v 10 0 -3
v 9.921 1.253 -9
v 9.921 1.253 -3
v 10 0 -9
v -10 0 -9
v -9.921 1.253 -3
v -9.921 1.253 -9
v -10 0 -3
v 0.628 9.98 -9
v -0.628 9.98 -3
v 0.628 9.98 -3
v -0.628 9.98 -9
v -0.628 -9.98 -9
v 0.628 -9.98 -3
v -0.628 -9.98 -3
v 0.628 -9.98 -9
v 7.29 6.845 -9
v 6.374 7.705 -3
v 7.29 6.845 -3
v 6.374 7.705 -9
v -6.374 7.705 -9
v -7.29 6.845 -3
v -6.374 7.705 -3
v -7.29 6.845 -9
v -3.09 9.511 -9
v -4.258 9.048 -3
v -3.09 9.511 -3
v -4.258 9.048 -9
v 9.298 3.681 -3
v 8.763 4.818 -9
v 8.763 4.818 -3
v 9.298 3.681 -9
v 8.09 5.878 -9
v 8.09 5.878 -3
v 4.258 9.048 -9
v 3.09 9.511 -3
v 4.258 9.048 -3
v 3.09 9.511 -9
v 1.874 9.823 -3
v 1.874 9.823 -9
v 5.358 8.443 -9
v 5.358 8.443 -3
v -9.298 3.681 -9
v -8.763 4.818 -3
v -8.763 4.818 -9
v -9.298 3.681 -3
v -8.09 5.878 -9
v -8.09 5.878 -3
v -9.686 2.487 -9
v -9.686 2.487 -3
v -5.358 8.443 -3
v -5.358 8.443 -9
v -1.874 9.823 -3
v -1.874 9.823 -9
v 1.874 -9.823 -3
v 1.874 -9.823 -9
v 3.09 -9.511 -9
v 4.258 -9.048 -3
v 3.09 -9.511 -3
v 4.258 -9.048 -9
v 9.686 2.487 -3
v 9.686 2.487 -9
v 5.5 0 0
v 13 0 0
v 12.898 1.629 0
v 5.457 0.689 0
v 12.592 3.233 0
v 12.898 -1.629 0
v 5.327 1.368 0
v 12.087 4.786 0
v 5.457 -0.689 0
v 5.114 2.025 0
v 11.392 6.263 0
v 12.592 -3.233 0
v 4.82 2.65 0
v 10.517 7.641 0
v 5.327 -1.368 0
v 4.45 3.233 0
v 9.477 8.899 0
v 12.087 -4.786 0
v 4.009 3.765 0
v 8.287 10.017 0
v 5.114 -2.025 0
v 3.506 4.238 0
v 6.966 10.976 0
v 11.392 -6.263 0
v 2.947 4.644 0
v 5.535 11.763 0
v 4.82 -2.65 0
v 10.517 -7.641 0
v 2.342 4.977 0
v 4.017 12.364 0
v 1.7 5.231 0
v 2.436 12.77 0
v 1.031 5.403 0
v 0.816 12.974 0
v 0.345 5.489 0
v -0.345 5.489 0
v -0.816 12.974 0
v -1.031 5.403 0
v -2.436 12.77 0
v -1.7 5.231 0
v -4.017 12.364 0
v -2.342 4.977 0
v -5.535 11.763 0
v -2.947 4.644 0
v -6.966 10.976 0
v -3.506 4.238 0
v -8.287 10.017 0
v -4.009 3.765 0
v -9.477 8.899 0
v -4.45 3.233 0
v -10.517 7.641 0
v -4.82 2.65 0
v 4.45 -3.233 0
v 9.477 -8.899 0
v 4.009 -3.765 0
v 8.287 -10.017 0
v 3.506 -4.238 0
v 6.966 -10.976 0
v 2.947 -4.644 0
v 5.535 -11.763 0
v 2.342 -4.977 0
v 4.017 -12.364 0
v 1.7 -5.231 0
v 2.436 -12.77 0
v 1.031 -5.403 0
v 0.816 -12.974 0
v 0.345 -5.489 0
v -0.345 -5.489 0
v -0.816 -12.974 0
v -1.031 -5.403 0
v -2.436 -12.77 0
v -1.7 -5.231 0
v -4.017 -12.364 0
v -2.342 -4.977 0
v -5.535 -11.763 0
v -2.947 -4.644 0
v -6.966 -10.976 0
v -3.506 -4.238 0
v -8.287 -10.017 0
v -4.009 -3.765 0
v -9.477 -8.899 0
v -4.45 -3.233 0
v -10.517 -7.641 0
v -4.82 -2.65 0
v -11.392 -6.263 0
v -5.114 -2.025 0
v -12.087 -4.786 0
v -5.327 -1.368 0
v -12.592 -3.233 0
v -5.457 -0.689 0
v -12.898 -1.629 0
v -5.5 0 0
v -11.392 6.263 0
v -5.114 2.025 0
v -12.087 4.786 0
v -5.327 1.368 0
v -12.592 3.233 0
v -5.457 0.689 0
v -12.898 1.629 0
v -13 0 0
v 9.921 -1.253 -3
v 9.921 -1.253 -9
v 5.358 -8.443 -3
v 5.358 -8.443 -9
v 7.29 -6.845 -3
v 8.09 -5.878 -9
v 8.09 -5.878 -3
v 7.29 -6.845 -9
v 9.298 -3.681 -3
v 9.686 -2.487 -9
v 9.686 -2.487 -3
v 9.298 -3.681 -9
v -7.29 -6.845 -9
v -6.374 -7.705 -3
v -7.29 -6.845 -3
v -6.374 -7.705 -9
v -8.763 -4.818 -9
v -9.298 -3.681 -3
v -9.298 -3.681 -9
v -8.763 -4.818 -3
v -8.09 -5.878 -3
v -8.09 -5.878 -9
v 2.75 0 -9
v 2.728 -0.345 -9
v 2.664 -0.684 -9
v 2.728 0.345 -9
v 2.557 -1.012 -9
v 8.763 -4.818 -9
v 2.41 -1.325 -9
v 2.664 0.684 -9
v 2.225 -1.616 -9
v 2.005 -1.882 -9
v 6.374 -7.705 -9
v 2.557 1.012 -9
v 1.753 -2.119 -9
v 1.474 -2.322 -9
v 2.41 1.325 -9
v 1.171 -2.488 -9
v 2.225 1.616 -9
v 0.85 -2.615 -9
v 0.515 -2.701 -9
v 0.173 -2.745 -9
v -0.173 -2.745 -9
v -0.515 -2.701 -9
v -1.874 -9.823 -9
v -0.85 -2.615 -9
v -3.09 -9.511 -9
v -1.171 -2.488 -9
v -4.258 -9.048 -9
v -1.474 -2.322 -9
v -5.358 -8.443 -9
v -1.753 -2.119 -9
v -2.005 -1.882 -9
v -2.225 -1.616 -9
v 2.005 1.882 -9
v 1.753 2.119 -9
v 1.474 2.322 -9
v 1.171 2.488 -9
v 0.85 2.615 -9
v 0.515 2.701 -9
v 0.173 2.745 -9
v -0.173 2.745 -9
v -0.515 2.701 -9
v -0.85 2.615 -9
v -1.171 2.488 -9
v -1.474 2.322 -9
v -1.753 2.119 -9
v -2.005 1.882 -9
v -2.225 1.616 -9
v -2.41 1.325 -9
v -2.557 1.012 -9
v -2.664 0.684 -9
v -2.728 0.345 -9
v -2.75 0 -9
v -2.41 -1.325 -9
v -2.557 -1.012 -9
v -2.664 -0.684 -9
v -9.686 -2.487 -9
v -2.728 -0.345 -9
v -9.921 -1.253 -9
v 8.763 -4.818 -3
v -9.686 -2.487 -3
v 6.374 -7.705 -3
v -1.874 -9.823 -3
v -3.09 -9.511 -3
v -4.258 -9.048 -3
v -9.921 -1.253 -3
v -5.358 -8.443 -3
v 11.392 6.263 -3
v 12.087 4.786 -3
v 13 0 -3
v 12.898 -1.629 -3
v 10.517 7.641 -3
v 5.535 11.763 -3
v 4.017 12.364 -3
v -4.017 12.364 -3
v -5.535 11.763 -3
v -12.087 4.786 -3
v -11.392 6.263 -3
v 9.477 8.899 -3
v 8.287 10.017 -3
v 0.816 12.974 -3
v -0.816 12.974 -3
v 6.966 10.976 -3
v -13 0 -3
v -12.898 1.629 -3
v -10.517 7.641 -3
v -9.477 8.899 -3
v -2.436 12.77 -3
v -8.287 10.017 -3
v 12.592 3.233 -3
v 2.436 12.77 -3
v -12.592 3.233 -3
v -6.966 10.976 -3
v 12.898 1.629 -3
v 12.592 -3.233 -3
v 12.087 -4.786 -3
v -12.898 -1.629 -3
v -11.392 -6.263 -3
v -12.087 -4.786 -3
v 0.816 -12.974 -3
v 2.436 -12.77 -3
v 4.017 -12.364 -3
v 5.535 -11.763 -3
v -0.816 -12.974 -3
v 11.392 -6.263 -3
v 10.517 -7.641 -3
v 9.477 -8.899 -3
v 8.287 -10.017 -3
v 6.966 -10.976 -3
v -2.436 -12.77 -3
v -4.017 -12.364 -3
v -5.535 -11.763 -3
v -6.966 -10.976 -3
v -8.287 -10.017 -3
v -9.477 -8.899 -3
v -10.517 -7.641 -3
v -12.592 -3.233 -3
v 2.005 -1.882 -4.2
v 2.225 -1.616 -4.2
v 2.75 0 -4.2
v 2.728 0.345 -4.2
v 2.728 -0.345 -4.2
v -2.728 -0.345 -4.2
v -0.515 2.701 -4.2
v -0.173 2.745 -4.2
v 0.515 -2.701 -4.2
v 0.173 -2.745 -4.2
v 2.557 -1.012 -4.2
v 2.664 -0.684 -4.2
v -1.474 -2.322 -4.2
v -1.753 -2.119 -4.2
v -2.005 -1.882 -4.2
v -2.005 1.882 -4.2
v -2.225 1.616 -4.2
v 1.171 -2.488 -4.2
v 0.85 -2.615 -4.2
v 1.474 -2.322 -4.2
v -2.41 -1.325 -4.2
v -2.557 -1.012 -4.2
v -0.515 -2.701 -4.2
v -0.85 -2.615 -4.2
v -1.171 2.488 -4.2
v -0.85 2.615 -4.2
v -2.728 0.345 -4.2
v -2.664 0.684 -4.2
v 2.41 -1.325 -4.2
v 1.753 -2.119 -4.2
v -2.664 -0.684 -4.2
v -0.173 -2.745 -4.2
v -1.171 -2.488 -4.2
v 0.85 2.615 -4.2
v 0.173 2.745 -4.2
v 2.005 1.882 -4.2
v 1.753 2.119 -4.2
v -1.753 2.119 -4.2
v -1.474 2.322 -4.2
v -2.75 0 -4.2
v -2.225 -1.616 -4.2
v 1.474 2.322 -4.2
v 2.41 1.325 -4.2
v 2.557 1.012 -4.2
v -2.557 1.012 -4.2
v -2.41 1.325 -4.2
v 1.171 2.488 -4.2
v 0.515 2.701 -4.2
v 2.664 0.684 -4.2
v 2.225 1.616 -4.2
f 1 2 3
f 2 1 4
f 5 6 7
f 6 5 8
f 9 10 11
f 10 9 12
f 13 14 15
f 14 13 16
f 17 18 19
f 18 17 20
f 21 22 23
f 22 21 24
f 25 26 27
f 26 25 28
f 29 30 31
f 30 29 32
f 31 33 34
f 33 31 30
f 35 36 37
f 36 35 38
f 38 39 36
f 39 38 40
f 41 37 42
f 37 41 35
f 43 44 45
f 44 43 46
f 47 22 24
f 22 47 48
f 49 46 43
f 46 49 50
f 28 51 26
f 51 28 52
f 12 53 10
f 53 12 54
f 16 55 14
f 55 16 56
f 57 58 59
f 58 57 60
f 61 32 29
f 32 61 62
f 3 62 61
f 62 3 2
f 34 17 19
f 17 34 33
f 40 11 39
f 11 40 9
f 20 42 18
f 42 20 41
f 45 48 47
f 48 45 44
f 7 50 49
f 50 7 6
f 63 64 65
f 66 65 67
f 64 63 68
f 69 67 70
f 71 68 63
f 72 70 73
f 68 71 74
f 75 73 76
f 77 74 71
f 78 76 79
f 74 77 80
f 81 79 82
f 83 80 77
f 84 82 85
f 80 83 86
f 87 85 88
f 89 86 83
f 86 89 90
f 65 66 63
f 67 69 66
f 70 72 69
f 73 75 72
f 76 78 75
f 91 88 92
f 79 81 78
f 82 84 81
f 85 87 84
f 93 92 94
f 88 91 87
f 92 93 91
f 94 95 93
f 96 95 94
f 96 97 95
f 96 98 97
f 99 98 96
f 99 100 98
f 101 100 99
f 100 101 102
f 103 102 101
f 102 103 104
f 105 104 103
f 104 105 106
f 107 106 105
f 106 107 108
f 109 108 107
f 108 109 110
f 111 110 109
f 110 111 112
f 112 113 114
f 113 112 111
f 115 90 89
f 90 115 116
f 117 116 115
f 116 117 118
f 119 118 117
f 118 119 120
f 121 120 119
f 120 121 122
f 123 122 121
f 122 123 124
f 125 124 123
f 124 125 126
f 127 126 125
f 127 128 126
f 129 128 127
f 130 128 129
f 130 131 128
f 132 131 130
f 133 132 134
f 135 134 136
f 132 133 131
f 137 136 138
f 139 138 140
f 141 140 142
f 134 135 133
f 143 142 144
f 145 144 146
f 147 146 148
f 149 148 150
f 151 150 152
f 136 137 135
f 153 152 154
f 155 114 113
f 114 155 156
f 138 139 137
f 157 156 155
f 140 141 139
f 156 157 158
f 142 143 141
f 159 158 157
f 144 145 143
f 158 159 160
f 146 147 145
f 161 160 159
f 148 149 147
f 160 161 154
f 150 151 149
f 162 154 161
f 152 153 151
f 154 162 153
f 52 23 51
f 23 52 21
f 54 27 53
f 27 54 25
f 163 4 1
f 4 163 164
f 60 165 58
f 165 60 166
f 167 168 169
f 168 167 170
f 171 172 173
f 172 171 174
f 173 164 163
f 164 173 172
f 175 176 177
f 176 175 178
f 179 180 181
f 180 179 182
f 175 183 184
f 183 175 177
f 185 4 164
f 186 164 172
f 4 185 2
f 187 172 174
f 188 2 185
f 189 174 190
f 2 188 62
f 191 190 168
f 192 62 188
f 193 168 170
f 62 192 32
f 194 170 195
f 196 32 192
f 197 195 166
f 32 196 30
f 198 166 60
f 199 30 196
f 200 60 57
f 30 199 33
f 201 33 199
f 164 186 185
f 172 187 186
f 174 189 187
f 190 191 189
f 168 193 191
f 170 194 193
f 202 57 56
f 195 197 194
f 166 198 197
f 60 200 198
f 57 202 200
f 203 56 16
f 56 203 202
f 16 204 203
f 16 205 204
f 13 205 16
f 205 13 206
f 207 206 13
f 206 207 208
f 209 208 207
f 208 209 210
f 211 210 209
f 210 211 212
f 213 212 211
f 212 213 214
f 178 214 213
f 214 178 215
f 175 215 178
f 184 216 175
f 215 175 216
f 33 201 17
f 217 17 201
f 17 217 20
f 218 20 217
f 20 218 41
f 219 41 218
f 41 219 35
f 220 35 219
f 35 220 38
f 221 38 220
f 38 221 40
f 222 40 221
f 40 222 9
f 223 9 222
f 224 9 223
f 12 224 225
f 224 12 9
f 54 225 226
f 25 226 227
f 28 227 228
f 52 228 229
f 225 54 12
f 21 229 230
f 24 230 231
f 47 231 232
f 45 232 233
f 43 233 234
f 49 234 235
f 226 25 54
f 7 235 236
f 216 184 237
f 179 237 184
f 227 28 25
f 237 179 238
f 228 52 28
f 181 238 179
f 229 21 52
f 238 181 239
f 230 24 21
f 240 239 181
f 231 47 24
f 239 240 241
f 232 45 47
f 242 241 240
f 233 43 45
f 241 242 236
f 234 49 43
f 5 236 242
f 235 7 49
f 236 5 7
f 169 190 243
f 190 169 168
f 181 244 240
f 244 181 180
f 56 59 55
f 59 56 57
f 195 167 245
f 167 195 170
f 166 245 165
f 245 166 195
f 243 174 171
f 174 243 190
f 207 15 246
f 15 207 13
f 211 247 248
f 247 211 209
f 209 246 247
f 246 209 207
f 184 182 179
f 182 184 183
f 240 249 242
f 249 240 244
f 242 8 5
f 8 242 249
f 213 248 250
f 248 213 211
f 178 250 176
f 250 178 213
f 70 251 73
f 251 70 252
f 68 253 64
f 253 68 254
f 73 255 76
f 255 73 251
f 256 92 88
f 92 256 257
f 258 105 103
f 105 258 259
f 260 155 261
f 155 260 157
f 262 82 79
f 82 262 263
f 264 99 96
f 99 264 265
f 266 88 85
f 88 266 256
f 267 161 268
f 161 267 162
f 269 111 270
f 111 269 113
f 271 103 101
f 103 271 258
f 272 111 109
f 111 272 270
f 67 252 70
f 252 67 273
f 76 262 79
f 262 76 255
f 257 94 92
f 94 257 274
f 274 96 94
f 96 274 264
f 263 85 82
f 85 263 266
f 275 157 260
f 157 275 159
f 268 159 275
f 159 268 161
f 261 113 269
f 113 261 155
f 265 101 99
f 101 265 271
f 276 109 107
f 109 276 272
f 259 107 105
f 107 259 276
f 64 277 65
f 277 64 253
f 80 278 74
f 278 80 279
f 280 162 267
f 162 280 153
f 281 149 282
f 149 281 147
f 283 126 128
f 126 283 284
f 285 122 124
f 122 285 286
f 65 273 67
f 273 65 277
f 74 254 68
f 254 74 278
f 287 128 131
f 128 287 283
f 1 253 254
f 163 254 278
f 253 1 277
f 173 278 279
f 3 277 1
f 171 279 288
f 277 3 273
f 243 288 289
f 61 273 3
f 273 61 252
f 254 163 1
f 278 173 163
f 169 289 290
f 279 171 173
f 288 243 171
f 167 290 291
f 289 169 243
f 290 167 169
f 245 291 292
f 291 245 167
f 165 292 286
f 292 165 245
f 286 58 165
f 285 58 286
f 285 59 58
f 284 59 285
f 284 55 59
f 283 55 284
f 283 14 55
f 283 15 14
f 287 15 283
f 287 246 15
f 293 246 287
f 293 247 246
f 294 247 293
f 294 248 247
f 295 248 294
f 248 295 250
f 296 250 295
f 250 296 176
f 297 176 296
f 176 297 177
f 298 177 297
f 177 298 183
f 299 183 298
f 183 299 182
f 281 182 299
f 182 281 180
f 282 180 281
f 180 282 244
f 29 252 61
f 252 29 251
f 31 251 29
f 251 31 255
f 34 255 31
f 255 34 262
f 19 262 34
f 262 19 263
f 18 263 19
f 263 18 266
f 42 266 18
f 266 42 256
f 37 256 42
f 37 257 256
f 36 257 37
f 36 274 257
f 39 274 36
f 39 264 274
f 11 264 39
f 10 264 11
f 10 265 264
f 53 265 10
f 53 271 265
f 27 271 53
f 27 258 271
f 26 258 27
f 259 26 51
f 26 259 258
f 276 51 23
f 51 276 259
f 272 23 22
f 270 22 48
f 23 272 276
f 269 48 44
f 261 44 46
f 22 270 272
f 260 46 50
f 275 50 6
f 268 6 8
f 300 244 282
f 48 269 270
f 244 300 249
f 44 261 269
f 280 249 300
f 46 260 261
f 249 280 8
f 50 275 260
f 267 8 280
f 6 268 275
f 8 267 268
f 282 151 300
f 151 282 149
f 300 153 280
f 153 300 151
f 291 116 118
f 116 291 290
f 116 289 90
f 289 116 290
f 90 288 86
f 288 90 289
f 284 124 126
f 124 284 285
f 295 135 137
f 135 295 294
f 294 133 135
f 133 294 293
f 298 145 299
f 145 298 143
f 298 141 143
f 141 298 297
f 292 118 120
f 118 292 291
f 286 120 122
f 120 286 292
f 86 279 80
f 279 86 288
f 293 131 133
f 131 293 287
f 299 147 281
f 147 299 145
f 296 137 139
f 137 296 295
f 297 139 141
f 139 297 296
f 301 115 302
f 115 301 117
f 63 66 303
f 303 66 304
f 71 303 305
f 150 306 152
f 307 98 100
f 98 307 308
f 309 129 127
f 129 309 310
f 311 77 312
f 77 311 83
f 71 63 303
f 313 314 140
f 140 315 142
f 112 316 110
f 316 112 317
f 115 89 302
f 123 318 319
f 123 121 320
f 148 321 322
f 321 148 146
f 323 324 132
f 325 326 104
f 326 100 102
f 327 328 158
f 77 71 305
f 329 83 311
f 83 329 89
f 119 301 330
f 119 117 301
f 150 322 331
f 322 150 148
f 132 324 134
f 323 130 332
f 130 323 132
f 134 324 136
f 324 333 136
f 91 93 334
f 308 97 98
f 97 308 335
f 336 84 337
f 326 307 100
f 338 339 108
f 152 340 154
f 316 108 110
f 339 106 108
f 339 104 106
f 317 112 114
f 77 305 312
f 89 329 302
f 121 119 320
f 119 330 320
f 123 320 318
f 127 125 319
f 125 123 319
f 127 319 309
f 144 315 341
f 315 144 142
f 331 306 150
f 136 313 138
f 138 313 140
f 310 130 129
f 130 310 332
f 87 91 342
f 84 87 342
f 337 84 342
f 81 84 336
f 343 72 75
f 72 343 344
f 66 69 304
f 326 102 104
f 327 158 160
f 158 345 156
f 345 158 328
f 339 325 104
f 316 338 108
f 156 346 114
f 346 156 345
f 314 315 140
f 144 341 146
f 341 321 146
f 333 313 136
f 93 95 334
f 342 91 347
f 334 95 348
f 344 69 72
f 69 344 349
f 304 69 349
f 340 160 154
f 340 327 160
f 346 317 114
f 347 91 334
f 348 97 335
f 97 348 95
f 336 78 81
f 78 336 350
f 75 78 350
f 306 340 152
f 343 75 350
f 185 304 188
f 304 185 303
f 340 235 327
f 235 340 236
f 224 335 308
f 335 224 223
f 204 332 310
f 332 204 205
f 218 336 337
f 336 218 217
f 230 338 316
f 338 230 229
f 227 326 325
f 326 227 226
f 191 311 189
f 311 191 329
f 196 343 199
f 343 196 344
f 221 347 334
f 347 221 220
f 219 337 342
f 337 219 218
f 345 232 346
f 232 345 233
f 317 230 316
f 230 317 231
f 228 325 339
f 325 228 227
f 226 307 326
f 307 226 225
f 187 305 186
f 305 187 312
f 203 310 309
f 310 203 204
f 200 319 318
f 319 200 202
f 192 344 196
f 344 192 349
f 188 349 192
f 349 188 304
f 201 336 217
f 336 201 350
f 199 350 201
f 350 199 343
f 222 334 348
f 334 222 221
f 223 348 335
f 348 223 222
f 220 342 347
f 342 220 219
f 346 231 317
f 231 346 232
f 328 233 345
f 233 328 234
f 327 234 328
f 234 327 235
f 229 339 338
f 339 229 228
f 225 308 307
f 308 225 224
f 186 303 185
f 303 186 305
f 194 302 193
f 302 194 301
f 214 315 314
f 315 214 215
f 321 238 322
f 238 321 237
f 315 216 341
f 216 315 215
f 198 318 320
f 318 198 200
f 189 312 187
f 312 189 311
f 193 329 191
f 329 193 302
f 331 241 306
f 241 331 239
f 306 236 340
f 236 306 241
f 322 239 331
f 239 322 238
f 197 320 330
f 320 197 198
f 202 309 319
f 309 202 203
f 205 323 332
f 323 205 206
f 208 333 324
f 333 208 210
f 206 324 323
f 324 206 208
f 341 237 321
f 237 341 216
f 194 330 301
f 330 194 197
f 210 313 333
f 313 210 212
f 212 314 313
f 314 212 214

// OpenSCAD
$fn = 50;


difference() {
	union() {
		translate(v = [0, 0, -9.0000000000]) {
			cylinder(h = 9, r = 10.0000000000);
		}
		translate(v = [0, 0, -3.0000000000]) {
			cylinder(h = 3, r = 13.0000000000);
		}
	}
	union() {
		translate(v = [0, 0, 0]) {
			rotate(a = [0, 0, 0]) {
				difference() {
					union() {
						#translate(v = [0, 0, -9.0000000000]) {
							cylinder(h = 9, r = 2.2500000000);
						}
						#translate(v = [0, 0, -4.2000000000]) {
							cylinder(h = 4.2000000000, r1 = 2.7500000000, r2 = 5.5000000000);
						}
						#translate(v = [0, 0, -9.0000000000]) {
							cylinder(h = 9, r = 2.7500000000);
						}
						#translate(v = [0, 0, -9.0000000000]) {
							cylinder(h = 9, r = 2.2500000000);
						}
					}
					union();
				}
			}
		}
	}
}
